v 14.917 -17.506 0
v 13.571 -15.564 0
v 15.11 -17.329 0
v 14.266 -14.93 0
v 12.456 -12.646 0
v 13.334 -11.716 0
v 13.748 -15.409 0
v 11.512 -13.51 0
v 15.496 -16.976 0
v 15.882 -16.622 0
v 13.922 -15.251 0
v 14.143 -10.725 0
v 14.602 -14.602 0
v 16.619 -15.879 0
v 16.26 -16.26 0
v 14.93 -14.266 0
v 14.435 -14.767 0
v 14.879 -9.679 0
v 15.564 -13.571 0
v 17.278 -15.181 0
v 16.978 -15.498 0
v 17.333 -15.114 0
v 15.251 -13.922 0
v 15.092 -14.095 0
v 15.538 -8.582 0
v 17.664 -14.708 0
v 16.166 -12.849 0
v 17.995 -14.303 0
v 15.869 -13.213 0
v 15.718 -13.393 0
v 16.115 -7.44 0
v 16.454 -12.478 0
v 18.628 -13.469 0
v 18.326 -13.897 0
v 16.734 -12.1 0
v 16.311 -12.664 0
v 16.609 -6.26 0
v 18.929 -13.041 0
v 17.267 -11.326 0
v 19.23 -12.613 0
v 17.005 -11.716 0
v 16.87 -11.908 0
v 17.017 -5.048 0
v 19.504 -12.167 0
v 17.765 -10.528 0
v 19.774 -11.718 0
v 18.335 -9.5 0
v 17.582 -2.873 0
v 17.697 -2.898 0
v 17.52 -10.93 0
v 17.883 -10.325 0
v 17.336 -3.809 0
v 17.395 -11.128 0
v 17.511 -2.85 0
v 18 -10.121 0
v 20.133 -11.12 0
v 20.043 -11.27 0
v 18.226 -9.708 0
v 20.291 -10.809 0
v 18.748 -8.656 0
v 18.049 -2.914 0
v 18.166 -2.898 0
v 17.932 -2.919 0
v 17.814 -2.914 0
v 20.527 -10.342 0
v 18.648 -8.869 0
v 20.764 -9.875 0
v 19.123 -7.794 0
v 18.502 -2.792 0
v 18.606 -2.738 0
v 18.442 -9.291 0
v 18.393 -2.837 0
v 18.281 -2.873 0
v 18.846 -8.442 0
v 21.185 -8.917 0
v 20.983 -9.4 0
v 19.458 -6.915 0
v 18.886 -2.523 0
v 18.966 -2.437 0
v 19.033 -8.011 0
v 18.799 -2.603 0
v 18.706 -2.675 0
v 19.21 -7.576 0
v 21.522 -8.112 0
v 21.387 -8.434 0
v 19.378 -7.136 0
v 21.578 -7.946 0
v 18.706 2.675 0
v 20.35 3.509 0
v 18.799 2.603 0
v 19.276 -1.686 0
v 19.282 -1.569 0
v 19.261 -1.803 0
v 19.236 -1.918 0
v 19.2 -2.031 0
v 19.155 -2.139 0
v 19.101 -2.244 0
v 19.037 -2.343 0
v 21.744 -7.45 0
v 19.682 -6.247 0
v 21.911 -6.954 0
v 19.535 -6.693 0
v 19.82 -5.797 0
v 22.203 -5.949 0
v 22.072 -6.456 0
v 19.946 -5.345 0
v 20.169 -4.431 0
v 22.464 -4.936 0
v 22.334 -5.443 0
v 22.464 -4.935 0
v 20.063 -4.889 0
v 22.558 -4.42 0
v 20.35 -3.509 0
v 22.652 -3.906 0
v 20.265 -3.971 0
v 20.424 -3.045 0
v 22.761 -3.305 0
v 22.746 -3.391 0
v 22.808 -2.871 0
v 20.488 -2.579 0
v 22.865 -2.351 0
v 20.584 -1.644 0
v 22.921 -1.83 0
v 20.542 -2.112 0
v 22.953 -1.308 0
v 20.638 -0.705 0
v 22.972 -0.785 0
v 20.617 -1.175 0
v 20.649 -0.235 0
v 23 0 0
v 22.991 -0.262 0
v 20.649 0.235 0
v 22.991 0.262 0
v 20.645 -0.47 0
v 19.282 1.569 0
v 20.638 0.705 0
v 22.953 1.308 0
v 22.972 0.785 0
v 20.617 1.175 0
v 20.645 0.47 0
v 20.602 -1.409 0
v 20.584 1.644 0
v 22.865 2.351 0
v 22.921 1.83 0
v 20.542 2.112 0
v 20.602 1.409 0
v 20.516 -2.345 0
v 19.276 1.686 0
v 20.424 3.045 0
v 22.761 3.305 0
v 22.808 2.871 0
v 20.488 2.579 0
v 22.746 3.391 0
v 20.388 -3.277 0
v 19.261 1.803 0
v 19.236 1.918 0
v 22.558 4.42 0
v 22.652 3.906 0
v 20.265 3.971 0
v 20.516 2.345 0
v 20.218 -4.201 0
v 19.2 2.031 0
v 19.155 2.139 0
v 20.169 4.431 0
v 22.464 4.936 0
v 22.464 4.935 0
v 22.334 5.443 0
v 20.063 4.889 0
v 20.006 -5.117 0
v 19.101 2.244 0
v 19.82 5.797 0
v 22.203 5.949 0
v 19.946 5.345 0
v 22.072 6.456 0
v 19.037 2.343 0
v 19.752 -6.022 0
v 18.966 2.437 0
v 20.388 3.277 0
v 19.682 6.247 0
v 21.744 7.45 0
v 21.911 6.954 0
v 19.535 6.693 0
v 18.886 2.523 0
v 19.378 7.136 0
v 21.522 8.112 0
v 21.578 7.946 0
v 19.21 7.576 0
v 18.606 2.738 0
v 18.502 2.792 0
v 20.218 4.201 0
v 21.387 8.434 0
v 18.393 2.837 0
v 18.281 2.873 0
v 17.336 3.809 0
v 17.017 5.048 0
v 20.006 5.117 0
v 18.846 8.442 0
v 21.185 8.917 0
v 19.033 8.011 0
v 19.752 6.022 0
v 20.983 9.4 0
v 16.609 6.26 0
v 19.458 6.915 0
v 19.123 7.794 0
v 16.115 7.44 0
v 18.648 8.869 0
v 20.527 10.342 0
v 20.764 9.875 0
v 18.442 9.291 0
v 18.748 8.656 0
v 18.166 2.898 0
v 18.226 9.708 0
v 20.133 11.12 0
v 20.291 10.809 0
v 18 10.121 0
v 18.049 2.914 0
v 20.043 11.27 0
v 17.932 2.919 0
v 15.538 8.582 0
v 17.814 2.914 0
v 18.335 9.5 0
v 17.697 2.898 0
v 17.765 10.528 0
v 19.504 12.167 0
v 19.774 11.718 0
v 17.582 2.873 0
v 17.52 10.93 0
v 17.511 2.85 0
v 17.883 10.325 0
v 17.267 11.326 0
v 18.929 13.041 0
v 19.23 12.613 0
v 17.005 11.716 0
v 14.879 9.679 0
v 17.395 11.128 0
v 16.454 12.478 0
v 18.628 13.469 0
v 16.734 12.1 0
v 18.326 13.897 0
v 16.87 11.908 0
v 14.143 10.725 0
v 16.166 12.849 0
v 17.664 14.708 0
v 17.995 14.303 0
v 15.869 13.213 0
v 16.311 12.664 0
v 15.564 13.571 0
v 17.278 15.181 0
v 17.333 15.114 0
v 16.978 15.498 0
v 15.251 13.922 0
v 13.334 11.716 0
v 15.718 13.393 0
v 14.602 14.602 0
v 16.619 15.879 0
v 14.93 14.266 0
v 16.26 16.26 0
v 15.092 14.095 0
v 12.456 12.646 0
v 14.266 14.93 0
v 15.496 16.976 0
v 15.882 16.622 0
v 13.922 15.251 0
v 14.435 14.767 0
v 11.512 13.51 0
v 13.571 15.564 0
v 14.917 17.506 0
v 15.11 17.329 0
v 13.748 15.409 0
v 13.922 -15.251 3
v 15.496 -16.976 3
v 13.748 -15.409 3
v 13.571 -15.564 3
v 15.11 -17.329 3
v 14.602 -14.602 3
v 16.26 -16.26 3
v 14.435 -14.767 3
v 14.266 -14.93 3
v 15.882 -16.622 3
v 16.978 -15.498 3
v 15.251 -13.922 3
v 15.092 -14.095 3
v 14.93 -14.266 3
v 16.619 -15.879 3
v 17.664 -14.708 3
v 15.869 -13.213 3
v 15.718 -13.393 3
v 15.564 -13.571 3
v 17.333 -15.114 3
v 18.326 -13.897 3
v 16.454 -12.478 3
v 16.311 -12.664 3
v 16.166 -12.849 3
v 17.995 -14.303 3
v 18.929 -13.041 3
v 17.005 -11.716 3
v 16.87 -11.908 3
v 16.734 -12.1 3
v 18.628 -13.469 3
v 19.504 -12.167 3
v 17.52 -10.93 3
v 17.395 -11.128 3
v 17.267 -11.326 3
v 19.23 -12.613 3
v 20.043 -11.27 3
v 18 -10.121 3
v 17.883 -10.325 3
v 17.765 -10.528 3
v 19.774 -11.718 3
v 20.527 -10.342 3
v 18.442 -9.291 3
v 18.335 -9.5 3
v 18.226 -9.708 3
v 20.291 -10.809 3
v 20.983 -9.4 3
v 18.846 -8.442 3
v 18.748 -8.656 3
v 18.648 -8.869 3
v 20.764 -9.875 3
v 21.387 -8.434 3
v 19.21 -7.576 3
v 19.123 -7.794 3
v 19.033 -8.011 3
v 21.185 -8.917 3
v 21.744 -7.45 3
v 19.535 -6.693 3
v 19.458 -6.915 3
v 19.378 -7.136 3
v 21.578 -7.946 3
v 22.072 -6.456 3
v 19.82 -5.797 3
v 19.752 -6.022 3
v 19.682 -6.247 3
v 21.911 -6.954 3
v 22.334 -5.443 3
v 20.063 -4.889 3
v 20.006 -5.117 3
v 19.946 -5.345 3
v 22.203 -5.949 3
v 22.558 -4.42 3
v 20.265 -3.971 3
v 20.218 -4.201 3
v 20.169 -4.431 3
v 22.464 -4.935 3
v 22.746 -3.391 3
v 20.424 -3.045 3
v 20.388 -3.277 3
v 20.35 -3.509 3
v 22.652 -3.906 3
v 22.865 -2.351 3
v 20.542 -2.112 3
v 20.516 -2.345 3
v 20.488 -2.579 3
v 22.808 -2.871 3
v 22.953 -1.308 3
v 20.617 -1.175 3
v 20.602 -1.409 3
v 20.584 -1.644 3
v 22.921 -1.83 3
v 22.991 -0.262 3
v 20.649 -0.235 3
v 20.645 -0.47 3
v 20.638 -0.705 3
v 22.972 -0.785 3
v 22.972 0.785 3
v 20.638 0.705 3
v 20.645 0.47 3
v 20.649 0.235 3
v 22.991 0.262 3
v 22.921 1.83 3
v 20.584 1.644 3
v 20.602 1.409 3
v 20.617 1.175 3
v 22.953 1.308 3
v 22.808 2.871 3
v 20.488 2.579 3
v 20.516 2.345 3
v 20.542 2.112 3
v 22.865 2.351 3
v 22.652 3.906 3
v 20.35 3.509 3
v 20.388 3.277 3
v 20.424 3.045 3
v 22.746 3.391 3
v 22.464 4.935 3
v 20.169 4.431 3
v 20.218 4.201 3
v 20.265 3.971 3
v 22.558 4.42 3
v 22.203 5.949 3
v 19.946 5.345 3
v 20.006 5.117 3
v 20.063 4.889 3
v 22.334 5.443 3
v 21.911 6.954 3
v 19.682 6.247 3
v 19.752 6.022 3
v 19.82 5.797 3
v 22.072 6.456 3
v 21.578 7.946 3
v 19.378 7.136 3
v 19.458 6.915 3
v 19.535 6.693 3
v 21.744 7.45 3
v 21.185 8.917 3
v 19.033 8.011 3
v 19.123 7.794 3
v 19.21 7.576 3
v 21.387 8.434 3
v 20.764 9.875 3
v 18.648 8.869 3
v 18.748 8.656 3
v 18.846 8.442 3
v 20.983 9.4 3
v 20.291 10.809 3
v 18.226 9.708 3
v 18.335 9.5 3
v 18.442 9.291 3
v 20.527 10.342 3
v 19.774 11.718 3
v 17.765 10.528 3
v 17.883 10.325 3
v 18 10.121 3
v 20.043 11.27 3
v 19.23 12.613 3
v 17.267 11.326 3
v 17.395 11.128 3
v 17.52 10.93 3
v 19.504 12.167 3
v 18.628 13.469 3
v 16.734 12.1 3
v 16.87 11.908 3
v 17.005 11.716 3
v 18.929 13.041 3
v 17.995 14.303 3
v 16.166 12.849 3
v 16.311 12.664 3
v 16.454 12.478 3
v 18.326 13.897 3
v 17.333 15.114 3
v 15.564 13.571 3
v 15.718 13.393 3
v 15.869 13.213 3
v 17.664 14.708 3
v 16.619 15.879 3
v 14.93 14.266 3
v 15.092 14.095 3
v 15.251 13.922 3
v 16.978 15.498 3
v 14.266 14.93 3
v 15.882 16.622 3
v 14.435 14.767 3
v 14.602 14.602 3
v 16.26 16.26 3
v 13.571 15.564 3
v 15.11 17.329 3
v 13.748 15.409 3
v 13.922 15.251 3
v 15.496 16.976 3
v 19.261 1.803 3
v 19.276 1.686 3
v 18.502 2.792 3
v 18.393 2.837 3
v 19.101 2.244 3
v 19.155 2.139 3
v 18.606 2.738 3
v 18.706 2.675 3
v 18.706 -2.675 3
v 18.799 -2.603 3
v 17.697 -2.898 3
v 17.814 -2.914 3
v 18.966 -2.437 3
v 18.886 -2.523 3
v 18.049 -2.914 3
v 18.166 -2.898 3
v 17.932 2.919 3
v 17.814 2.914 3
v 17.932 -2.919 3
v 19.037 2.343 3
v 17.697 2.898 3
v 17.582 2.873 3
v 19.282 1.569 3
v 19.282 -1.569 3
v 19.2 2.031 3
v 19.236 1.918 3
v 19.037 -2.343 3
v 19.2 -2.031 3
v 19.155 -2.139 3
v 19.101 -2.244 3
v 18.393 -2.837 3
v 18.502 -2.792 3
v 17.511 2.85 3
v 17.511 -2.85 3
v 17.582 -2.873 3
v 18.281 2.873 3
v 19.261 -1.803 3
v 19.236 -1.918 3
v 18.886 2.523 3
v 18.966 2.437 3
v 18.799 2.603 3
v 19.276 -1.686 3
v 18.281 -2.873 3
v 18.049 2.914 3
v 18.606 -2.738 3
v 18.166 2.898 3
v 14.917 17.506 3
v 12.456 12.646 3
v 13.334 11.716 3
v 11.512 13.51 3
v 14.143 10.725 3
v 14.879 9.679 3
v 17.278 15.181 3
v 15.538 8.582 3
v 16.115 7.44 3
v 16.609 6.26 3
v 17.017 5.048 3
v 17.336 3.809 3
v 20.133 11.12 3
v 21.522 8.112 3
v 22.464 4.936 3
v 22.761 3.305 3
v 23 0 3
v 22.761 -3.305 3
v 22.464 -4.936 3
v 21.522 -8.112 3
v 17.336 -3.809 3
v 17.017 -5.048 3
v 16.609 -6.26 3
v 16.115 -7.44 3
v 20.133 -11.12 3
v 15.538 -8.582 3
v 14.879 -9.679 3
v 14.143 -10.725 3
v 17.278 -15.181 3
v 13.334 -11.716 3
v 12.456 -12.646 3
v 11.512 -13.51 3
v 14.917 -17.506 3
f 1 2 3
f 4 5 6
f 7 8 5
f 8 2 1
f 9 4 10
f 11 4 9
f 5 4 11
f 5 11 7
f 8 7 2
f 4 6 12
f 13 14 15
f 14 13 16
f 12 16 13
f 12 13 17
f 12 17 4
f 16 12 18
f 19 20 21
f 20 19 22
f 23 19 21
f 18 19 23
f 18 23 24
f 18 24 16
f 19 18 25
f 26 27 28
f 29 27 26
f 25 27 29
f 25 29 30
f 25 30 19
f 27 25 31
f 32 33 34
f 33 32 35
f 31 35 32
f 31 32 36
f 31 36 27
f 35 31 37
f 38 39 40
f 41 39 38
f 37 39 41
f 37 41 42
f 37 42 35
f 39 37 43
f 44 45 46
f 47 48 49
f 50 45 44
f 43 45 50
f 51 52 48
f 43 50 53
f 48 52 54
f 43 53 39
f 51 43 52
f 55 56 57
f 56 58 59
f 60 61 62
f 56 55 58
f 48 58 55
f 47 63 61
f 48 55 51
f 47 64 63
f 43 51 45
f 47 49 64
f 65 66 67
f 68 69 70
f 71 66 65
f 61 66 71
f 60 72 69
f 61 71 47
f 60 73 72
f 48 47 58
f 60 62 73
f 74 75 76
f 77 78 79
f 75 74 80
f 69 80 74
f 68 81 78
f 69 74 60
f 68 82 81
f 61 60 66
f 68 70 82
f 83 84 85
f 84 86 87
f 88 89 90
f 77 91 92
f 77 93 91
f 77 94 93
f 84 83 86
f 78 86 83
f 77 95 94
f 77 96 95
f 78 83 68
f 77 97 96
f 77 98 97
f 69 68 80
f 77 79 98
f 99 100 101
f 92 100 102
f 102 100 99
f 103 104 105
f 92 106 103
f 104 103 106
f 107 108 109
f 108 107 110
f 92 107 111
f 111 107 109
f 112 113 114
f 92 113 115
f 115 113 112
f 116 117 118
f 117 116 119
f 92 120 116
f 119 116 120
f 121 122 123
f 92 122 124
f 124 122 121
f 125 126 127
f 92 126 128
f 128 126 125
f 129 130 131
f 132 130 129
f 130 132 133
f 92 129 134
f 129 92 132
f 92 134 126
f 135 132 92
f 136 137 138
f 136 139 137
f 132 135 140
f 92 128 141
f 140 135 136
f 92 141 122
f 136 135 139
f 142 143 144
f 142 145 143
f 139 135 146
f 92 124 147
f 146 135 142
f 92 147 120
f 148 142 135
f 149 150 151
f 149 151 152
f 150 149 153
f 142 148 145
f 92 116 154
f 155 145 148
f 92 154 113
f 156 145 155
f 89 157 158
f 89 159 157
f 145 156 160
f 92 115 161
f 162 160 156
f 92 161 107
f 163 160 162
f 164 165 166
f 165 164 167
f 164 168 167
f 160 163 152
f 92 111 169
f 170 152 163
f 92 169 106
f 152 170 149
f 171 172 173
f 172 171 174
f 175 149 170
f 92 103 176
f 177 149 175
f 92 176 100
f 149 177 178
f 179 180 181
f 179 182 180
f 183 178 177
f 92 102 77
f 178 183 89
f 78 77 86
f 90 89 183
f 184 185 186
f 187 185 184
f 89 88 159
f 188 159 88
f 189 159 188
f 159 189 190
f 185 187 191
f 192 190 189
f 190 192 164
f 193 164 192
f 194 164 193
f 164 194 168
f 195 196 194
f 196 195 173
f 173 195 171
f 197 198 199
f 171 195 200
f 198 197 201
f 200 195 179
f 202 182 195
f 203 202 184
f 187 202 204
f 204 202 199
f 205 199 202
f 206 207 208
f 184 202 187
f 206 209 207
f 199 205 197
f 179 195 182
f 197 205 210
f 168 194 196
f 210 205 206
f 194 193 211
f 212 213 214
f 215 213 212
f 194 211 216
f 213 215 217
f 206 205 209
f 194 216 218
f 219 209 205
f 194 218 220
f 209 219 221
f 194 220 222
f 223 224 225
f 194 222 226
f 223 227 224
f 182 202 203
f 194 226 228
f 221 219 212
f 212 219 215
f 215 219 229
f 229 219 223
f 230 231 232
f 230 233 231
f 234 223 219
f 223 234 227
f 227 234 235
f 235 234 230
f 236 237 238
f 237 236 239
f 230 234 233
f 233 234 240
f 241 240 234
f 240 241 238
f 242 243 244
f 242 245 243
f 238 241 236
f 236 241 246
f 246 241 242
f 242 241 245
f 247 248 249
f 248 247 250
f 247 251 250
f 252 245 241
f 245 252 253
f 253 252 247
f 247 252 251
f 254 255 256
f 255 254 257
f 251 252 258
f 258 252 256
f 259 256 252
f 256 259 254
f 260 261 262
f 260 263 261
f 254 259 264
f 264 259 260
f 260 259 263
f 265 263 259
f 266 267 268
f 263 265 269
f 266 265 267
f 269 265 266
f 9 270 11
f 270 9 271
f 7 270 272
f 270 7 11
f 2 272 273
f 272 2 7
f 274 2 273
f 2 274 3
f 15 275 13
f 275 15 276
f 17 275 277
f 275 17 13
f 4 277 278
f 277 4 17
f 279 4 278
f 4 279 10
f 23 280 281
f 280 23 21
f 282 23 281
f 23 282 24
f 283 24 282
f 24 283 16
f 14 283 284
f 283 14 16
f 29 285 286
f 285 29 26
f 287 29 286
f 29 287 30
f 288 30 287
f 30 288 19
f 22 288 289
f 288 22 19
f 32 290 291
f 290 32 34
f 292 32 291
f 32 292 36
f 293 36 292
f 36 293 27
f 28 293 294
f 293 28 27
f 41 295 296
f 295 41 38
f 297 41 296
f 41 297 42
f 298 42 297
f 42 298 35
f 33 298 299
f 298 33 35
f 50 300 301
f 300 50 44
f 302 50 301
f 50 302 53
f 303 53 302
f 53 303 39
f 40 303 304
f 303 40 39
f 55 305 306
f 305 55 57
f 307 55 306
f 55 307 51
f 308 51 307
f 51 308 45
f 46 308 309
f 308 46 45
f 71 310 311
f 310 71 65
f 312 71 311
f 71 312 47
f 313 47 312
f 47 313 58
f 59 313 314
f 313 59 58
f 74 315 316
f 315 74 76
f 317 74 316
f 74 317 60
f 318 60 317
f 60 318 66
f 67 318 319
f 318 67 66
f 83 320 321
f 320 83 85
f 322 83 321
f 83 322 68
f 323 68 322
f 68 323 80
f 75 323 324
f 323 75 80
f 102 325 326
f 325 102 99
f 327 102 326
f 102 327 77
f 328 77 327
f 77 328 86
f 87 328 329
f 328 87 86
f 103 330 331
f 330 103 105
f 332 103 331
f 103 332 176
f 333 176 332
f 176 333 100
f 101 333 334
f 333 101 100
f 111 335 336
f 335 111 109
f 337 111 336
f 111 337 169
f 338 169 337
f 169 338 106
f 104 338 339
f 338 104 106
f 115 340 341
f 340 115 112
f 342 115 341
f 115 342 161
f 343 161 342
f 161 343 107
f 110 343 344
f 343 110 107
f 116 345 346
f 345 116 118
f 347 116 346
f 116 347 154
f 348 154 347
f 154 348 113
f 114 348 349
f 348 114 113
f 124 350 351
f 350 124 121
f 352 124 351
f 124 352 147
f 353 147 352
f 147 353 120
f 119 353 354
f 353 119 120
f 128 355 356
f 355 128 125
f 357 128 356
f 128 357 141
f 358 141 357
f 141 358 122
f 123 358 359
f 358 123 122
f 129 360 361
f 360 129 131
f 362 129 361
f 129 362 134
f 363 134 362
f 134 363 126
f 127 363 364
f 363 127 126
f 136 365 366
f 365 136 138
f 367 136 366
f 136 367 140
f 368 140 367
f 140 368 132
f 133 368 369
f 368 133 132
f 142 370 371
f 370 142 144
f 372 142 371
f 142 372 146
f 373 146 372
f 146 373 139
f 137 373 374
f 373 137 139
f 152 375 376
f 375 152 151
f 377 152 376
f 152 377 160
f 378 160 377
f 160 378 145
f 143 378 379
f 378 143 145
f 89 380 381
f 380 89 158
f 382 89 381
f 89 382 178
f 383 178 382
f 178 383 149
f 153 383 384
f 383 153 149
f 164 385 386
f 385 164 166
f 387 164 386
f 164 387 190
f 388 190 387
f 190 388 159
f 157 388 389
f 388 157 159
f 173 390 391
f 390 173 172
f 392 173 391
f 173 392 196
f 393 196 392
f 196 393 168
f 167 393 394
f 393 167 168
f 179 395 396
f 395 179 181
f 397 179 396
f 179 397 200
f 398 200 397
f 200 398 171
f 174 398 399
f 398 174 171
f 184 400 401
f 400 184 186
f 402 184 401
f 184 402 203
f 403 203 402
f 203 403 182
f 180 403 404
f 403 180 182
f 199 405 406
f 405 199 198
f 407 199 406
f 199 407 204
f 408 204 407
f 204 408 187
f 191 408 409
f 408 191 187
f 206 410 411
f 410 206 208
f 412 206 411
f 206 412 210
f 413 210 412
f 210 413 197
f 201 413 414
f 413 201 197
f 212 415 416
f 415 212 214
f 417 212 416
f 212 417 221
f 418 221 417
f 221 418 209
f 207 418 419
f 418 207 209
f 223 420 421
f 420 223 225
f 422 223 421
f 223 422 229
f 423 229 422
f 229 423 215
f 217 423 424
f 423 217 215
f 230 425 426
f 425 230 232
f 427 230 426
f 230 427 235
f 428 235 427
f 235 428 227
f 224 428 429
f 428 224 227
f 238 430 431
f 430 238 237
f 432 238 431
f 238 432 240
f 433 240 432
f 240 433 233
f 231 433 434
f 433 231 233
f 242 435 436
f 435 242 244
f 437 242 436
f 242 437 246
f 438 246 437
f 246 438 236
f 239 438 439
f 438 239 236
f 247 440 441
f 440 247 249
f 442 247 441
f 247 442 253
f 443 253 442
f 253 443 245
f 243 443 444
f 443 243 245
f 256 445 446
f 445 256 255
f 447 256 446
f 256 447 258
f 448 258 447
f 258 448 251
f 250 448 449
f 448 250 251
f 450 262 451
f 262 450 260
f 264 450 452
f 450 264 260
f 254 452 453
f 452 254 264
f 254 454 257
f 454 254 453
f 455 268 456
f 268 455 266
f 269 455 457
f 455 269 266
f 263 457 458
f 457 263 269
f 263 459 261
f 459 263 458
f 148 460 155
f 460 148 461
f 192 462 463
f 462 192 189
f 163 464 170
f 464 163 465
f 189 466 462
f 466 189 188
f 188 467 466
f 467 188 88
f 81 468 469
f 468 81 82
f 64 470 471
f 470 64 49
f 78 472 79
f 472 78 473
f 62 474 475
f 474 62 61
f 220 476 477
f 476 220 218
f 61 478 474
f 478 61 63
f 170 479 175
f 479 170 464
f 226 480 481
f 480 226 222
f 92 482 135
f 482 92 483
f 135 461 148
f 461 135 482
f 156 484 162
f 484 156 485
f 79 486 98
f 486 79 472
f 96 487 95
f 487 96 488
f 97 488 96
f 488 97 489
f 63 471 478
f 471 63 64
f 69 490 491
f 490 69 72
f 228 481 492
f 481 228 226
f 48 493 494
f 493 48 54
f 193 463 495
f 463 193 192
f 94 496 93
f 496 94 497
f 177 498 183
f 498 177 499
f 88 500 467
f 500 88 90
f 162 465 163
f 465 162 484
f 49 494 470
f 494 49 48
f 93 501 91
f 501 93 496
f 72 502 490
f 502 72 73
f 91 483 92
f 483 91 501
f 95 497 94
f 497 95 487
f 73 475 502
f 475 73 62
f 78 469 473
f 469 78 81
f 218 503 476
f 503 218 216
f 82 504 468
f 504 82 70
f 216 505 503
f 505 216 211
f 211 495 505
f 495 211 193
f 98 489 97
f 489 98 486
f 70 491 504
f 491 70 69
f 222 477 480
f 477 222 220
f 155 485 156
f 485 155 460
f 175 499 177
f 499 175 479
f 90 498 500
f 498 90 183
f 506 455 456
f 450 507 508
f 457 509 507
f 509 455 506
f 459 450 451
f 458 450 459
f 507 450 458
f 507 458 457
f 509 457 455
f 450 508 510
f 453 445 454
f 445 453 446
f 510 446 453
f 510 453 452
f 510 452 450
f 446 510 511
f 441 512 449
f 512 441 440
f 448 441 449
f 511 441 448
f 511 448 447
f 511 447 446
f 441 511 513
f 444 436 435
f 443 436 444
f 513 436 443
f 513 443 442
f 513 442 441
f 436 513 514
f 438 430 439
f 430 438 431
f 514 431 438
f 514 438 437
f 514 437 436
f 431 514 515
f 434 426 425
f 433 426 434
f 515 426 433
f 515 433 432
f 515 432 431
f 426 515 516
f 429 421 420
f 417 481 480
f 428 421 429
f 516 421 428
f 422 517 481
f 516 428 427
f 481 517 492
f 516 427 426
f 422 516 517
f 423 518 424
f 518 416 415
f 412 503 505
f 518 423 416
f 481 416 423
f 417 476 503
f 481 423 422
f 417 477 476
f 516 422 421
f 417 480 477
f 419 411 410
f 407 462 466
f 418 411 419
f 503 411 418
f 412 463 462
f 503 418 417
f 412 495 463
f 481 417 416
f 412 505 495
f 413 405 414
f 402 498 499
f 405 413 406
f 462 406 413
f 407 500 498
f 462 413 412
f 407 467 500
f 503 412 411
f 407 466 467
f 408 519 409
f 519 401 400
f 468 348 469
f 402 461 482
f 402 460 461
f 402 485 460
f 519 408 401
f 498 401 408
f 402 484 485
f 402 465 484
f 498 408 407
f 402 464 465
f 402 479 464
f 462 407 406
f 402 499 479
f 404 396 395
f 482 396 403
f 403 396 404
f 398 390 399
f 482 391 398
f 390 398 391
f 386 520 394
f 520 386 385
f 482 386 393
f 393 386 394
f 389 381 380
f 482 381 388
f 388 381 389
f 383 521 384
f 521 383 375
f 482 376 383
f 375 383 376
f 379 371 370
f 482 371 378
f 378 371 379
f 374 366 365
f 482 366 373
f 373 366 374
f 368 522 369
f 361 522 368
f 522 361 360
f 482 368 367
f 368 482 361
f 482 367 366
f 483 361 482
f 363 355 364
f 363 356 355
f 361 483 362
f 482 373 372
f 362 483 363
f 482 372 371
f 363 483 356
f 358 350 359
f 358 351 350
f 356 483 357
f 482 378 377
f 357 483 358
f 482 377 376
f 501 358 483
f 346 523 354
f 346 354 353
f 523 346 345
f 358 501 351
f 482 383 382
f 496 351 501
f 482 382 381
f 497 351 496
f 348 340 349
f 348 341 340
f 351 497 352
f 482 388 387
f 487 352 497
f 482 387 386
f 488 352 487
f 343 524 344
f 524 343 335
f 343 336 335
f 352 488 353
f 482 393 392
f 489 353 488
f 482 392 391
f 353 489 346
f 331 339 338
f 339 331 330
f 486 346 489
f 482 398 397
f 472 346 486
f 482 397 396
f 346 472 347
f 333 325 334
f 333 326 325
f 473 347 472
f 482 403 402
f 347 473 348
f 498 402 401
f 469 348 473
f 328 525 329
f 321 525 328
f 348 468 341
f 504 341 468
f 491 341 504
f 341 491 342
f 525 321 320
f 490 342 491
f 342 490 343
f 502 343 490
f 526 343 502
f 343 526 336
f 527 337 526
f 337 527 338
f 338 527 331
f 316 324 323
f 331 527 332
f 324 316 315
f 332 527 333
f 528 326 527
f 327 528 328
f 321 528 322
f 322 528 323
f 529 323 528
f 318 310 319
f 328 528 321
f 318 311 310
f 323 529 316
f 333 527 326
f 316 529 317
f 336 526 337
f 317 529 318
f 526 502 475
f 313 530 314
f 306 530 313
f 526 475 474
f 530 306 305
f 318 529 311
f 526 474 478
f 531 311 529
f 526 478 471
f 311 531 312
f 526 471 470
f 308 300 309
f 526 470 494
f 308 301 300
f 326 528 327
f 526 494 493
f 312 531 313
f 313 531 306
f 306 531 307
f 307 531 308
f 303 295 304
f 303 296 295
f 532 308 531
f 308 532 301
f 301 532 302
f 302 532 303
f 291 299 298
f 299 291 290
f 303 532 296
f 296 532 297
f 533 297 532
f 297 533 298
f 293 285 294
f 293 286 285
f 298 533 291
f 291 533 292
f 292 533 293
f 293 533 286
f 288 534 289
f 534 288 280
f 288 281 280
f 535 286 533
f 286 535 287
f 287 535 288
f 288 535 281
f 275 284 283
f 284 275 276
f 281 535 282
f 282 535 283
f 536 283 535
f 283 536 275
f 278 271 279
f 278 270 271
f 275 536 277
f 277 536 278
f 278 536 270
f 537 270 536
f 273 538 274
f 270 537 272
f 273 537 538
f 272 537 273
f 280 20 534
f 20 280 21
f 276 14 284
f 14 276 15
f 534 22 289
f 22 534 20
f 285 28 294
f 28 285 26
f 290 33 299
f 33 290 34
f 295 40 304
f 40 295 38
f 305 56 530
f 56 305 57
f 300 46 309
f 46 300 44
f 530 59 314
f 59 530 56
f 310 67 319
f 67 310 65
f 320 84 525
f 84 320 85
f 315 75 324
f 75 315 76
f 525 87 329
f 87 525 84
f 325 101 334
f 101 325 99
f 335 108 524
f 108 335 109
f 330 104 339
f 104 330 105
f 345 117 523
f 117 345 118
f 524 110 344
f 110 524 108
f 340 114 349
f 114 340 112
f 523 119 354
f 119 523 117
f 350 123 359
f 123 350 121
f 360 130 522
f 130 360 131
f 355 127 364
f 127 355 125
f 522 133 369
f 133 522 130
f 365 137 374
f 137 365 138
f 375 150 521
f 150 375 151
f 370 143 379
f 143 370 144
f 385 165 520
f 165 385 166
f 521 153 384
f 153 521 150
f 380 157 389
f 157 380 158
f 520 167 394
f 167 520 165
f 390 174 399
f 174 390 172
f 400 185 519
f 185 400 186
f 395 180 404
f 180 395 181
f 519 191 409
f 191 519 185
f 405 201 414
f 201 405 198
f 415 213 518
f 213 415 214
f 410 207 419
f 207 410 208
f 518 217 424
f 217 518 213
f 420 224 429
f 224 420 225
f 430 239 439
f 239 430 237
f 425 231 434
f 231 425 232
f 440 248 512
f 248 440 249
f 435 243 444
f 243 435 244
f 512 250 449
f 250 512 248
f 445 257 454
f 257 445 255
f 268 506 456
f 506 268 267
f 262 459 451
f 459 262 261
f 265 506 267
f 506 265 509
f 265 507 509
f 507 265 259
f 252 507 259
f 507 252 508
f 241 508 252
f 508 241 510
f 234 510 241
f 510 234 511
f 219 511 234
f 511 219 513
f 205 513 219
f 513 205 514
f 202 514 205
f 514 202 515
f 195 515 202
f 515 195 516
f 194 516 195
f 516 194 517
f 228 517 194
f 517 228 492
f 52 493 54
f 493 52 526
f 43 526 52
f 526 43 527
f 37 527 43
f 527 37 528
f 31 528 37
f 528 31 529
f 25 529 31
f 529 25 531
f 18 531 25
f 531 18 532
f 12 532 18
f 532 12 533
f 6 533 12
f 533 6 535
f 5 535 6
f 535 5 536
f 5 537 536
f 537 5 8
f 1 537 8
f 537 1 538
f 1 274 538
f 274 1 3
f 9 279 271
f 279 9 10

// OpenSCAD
// nacelle_sector_gear.scad
// Serenity UAV Rev R — Nacelle Tilt Linkage, Fixed Sector Gear
//
// Purpose:
//   Sector gear fixed to the fuselage-side tilt bracket.  The sector does NOT
//   rotate with the nacelle.  As the nacelle tilts, Drive Pinion A rolls along
//   this fixed sector, translating nacelle rotation angle into pinion shaft
//   rotation that ultimately drives the iris nozzle open/closed.
//
//   Gear ratio contribution (sector side):
//     Nacelle tilt 0–90° → Pinion A rotates (22/6) × 90° = 330°
//   Full system ratio: 90° × (22/6) × (6/28) = 70.7° nozzle ring travel.
//
// Mating interfaces:
//   • Drive Pinion A (nacelle_pinion.scad):
//       Pitch circles tangent at mesh point; 0.1 mm backlash on centre distance.
//   • Tilt bracket pivot bolt: M4, MOUNT_BORE_D = 4.2 mm clearance.
//   • Nacelle boss posts (×4 M2.5 adjustment slots): SLOT_BC_R = 18 mm,
//       SLOT_D = 2.7 mm clearance, SLOT_ARC_DEG = 10° per slot.
//
// Gear standard: AGMA/ISO involute, Module M = 1.0 mm, Pressure angle 20°.
// Tooth profile method: tooth-space subtraction — angular pitch wedges removed
//   from a solid sector annulus, leaving a functional trapezoidal approximation
//   of the involute tooth form.  Adequate for M = 1.0 in PETG or resin.
//
// Print specification:
//   Preferred:  SLA resin, ≤ 0.05 mm layer height (captures M=1 tooth detail).
//   Backup:     CF-PETG FDM, 0.10 mm layers, 4 perimeters, 40 % gyroid infill.
//   Nozzle:     Hardened steel (CF-PETG is abrasive).
//   Orientation: Print flat (teeth facing up) to maximise tooth-face quality.
//   Note:       M = 1.0 mm is printable in FDM at 0.10 mm layer height with a
//               0.25 mm nozzle; a 0.40 mm nozzle will round tooth crests —
//               acceptable for prototype but use resin for final flight article.
//
// Author:  Steve Griffing, PE(CSE), CISSP-ISSEP, CPP
// License: CC BY 4.0  <https://creativecommons.org/licenses/by/4.0/>
// Date:    2026-05-24
// Rev:     R (2026-06-11): Rev R baseline — no geometry changes (carried forward from Rev O initial release).

// ── Resolution ────────────────────────────────────────────────────────────────

$fn = 72;   // standard circle resolution for all rotational solids

// ── Gear Parameters ───────────────────────────────────────────────────────────

MODULE          =  1.0;   // [mm] AGMA Module — tooth size standard
PRESSURE_ANGLE  = 20.0;   // [deg] standard involute pressure angle
PITCH_R         = 22.0;   // [mm] pitch circle radius of sector gear
SECTOR_TEETH    = 38;     // [count] number of teeth spanning the active arc
                          //   38 T covers 155° — encompasses the nacelle's
                          //   operating range of 0° (cruise) to 90° (hover)
                          //   plus ±5° overtravel hard-stop margin each end.
BODY_H          =  3.0;   // [mm] plate (web) thickness behind teeth
MOUNT_BORE_D    =  4.2;   // [mm] M4 clearance bore at pivot axis
SLOT_BC_R       = 18.0;   // [mm] bolt-circle radius for M2.5 adjustment slots
SLOT_D          =  2.7;   // [mm] M2.5 clearance slot width
SLOT_ARC_DEG    = 10.0;   // [deg] arc length of each slot (mesh preload range)
N_SLOTS         =  4;     // [count] number of adjustment slots (evenly spaced)

// ── Derived Gear Geometry ─────────────────────────────────────────────────────

// Full-circle equivalent tooth count for M = 1.0 at PITCH_R = 22 mm:
//   N_FULL = round( 2π × PITCH_R / MODULE ) = round( 138.23 ) = 138
N_FULL = round(2 * PI * PITCH_R / MODULE);   // = 138 teeth (full circle)

// Standard tooth proportions per AGMA 201:
ADDENDUM   = MODULE;              // [mm] tooth height above pitch circle = 1.0
DEDENDUM   = 1.25 * MODULE;      // [mm] tooth depth below pitch circle = 1.25
TIP_R      = PITCH_R + ADDENDUM; // [mm] addendum (tip) circle radius  = 23.0
ROOT_R     = PITCH_R - DEDENDUM; // [mm] dedendum (root) circle radius = 20.75
BASE_R     = PITCH_R * cos(PRESSURE_ANGLE); // [mm] base circle radius ≈ 20.67

// Angular pitch — angle subtended by one tooth + one space at pitch circle:
ANGULAR_PITCH = 360.0 / N_FULL;  // [deg] = 2.609° per tooth

// Tooth space width at pitch circle = π × MODULE / 2 = 1.5708 mm.
// In angular terms at pitch circle circumference:
//   tooth_space_angle = (PI * MODULE / 2) / (2 * PI * PITCH_R / 360) = 4.09°
//   (half angular pitch, because equal space and tooth width at pitch circle)
SPACE_HALF_ANG = ANGULAR_PITCH / 2;  // [deg] half-width of tooth space

// Sector arc angle based on actual tooth count:
SECTOR_ARC_DEG = SECTOR_TEETH * ANGULAR_PITCH;  // [deg] ≈ 99.1° for 38 T

// Starting angle of sector arc.  Zero the midpoint of the sector at 0° so the
// sector spans symmetrically about the tilt-bracket centreline.
SECTOR_START_DEG = -SECTOR_ARC_DEG / 2;  // [deg] first tooth left edge

// Backing plate inner radius — small ledge behind root circle for rigidity:
BACK_INNER_R = ROOT_R - 3.0;   // [mm] = 17.75 mm
// Backing plate outer radius matches addendum circle:
BACK_OUTER_R = TIP_R;          // [mm] = 23.0 mm

// ── Polygon Helpers ───────────────────────────────────────────────────────────
//
// arc_pts(r, a1, a2, n) — n+1 points along an arc at radius r from a1 to a2.
//   Returns a list of [x, y] vectors usable in polygon().
//   Using polygon() for tooth spaces avoids nested 2D CSG (circle−circle−square²)
//   which forces CGAL into exponential work for each of the 38+ tooth subtractions.
//
function arc_pts(r, a1, a2, n) =
    [for (i = [0 : n]) let(a = a1 + i * (a2 - a1) / n) [r * cos(a), r * sin(a)]];

// annular_wedge(r_in, r_out, a1, a2, n) — closed annular-sector polygon.
//   Inner arc runs a1→a2; outer arc runs a2→a1 (reversed for winding order).
//   n = arc-segment count per edge; total vertices = 2*(n+1).
//
function annular_wedge(r_in, r_out, a1, a2, n) =
    concat(arc_pts(r_in,  a1, a2, n),
           arc_pts(r_out, a2, a1, n));

// ── Module Definitions ────────────────────────────────────────────────────────

// sector_plate() — solid pie-wedge annulus covering the full sector arc.
//   The teeth will be formed by subtracting tooth-space wedges from this solid.
//   Built as a single polygon (annular_wedge) — no nested 2D boolean operations.
//   Arc resolution matches $fn=72 over the sector span: 72*(SECTOR_ARC_DEG/360)≈20;
//   using 24 segments for the outer/inner arcs gives smooth edges at this scale.
module sector_plate() {
    linear_extrude(height = BODY_H) {
        polygon(annular_wedge(
            BACK_INNER_R, BACK_OUTER_R,
            SECTOR_START_DEG, SECTOR_START_DEG + SECTOR_ARC_DEG,
            24   // arc segments per edge (≈ $fn=72 proportional to 99° span)
        ));
    }
}

// tooth_space(i) — subtract one tooth-space gap between teeth i and i+1.
//   The gap is a thin angular wedge at the root-to-tip radial band, centred
//   midway between adjacent tooth centrelines.
//   Built as a polygon — avoids the 4-level CSG (circle−circle−square−square)
//   that caused CGAL to time out with 38+ iterations.
//
//   Arguments:
//     i  — tooth index (0-based); space is placed between tooth i and tooth i+1
module tooth_space(i) {
    // Angular centre of this tooth space:
    //   teeth are at i × ANGULAR_PITCH; spaces fall between teeth.
    //   Space centre = SECTOR_START_DEG + (i + 0.5) × ANGULAR_PITCH
    space_centre_deg = SECTOR_START_DEG + (i + 0.5) * ANGULAR_PITCH;

    // Half-angle of the trapezoidal tooth-space wedge.
    // AGMA circular tooth thickness at pitch circle = π × MODULE / 2.
    // As an angle: (π × MODULE / 2) / PITCH_R × (180/π)
    //            = (1.5708 / 22) × 57.296 = 4.09°
    // Tooth space width = same (equal division), so half-angle ≈ 2.045°
    half_ang = SPACE_HALF_ANG / 2;   // [deg]

    // Each tooth space spans only ~4° — 2 arc segments per edge is sufficient;
    // the arc deviates < 0.001 mm from a straight line over this narrow angle.
    linear_extrude(height = BODY_H + 0.1) {
        polygon(annular_wedge(
            ROOT_R - 0.1, TIP_R + 0.2,
            space_centre_deg - half_ang, space_centre_deg + half_ang,
            2   // 2 segments per arc edge (tooth space is only ~4° wide)
        ));
    }
}

// adjustment_slot(i) — one M2.5 adjustment slot at SLOT_BC_R.
//   The slot is an arc of SLOT_ARC_DEG length and SLOT_D width, allowing
//   radial adjustment of the sector for mesh preload setting.
module adjustment_slot(i) {
    slot_centre_deg = i * (360.0 / N_SLOTS);   // evenly spaced around bolt circle

    // Render arc slot as hull of two small circles at slot endpoints
    hull() {
        rotate([0, 0, slot_centre_deg - SLOT_ARC_DEG / 2])
            translate([SLOT_BC_R, 0, -0.1])
                cylinder(h = BODY_H + 0.2, d = SLOT_D);
        rotate([0, 0, slot_centre_deg + SLOT_ARC_DEG / 2])
            translate([SLOT_BC_R, 0, -0.1])
                cylinder(h = BODY_H + 0.2, d = SLOT_D);
    }
}

// sector_gear() — top-level module: assembles the complete sector gear.
//
//   Geometry sequence:
//     1. Start with solid sector annulus plate.
//     2. Subtract SECTOR_TEETH + 1 tooth-space wedges (N spaces for N teeth).
//     3. Subtract pivot bore (M4 clearance).
//     4. Subtract N_SLOTS adjustment slots.
//
//   Coordinate origin: centre of pivot (tilt axis) bore.
//   +Z = forward face (Pinion A meshes from this side).
//   Sector arc centred at 0° in X-Y plane.
module sector_gear() {
    difference() {
        // ── Base solid ──────────────────────────────────────────────────────
        sector_plate();

        // ── Tooth-space subtractions ────────────────────────────────────────
        // Subtract SECTOR_TEETH + 1 spaces (one space on each outer flank):
        for (i = [0 : SECTOR_TEETH]) {
            tooth_space(i);
        }

        // ── Pivot bore ──────────────────────────────────────────────────────
        // M4 clearance through-hole at tilt-axis pivot.  Centre at origin.
        translate([0, 0, -0.1])
            cylinder(h = BODY_H + 0.2, d = MOUNT_BORE_D);

        // ── Adjustment slots ────────────────────────────────────────────────
        // Four M2.5 arc slots at SLOT_BC_R = 18 mm bolt circle.
        for (i = [0 : N_SLOTS - 1]) {
            adjustment_slot(i);
        }
    }
}

// ── Fit Confirmation ──────────────────────────────────────────────────────────
//
//   Interface          Mating part               Clearance / fit
//   ─────────────────  ────────────────────────  ─────────────────────────────
//   Tooth pitch circle Drive Pinion A            0.10 mm radial backlash
//                      (nacelle_pinion.scad)     (centre distance = 22+6+0.1)
//   MOUNT_BORE_D 4.2   M4 tilt-bracket pivot     0.2 mm diametral clearance
//   SLOT_D 2.7         M2.5 boss posts            0.2 mm diametral clearance
//   Plate face (Z=0)   Tilt bracket pocket        bonded / face contact

// ── Render ────────────────────────────────────────────────────────────────────

// Uncomment to render:
sector_gear();
